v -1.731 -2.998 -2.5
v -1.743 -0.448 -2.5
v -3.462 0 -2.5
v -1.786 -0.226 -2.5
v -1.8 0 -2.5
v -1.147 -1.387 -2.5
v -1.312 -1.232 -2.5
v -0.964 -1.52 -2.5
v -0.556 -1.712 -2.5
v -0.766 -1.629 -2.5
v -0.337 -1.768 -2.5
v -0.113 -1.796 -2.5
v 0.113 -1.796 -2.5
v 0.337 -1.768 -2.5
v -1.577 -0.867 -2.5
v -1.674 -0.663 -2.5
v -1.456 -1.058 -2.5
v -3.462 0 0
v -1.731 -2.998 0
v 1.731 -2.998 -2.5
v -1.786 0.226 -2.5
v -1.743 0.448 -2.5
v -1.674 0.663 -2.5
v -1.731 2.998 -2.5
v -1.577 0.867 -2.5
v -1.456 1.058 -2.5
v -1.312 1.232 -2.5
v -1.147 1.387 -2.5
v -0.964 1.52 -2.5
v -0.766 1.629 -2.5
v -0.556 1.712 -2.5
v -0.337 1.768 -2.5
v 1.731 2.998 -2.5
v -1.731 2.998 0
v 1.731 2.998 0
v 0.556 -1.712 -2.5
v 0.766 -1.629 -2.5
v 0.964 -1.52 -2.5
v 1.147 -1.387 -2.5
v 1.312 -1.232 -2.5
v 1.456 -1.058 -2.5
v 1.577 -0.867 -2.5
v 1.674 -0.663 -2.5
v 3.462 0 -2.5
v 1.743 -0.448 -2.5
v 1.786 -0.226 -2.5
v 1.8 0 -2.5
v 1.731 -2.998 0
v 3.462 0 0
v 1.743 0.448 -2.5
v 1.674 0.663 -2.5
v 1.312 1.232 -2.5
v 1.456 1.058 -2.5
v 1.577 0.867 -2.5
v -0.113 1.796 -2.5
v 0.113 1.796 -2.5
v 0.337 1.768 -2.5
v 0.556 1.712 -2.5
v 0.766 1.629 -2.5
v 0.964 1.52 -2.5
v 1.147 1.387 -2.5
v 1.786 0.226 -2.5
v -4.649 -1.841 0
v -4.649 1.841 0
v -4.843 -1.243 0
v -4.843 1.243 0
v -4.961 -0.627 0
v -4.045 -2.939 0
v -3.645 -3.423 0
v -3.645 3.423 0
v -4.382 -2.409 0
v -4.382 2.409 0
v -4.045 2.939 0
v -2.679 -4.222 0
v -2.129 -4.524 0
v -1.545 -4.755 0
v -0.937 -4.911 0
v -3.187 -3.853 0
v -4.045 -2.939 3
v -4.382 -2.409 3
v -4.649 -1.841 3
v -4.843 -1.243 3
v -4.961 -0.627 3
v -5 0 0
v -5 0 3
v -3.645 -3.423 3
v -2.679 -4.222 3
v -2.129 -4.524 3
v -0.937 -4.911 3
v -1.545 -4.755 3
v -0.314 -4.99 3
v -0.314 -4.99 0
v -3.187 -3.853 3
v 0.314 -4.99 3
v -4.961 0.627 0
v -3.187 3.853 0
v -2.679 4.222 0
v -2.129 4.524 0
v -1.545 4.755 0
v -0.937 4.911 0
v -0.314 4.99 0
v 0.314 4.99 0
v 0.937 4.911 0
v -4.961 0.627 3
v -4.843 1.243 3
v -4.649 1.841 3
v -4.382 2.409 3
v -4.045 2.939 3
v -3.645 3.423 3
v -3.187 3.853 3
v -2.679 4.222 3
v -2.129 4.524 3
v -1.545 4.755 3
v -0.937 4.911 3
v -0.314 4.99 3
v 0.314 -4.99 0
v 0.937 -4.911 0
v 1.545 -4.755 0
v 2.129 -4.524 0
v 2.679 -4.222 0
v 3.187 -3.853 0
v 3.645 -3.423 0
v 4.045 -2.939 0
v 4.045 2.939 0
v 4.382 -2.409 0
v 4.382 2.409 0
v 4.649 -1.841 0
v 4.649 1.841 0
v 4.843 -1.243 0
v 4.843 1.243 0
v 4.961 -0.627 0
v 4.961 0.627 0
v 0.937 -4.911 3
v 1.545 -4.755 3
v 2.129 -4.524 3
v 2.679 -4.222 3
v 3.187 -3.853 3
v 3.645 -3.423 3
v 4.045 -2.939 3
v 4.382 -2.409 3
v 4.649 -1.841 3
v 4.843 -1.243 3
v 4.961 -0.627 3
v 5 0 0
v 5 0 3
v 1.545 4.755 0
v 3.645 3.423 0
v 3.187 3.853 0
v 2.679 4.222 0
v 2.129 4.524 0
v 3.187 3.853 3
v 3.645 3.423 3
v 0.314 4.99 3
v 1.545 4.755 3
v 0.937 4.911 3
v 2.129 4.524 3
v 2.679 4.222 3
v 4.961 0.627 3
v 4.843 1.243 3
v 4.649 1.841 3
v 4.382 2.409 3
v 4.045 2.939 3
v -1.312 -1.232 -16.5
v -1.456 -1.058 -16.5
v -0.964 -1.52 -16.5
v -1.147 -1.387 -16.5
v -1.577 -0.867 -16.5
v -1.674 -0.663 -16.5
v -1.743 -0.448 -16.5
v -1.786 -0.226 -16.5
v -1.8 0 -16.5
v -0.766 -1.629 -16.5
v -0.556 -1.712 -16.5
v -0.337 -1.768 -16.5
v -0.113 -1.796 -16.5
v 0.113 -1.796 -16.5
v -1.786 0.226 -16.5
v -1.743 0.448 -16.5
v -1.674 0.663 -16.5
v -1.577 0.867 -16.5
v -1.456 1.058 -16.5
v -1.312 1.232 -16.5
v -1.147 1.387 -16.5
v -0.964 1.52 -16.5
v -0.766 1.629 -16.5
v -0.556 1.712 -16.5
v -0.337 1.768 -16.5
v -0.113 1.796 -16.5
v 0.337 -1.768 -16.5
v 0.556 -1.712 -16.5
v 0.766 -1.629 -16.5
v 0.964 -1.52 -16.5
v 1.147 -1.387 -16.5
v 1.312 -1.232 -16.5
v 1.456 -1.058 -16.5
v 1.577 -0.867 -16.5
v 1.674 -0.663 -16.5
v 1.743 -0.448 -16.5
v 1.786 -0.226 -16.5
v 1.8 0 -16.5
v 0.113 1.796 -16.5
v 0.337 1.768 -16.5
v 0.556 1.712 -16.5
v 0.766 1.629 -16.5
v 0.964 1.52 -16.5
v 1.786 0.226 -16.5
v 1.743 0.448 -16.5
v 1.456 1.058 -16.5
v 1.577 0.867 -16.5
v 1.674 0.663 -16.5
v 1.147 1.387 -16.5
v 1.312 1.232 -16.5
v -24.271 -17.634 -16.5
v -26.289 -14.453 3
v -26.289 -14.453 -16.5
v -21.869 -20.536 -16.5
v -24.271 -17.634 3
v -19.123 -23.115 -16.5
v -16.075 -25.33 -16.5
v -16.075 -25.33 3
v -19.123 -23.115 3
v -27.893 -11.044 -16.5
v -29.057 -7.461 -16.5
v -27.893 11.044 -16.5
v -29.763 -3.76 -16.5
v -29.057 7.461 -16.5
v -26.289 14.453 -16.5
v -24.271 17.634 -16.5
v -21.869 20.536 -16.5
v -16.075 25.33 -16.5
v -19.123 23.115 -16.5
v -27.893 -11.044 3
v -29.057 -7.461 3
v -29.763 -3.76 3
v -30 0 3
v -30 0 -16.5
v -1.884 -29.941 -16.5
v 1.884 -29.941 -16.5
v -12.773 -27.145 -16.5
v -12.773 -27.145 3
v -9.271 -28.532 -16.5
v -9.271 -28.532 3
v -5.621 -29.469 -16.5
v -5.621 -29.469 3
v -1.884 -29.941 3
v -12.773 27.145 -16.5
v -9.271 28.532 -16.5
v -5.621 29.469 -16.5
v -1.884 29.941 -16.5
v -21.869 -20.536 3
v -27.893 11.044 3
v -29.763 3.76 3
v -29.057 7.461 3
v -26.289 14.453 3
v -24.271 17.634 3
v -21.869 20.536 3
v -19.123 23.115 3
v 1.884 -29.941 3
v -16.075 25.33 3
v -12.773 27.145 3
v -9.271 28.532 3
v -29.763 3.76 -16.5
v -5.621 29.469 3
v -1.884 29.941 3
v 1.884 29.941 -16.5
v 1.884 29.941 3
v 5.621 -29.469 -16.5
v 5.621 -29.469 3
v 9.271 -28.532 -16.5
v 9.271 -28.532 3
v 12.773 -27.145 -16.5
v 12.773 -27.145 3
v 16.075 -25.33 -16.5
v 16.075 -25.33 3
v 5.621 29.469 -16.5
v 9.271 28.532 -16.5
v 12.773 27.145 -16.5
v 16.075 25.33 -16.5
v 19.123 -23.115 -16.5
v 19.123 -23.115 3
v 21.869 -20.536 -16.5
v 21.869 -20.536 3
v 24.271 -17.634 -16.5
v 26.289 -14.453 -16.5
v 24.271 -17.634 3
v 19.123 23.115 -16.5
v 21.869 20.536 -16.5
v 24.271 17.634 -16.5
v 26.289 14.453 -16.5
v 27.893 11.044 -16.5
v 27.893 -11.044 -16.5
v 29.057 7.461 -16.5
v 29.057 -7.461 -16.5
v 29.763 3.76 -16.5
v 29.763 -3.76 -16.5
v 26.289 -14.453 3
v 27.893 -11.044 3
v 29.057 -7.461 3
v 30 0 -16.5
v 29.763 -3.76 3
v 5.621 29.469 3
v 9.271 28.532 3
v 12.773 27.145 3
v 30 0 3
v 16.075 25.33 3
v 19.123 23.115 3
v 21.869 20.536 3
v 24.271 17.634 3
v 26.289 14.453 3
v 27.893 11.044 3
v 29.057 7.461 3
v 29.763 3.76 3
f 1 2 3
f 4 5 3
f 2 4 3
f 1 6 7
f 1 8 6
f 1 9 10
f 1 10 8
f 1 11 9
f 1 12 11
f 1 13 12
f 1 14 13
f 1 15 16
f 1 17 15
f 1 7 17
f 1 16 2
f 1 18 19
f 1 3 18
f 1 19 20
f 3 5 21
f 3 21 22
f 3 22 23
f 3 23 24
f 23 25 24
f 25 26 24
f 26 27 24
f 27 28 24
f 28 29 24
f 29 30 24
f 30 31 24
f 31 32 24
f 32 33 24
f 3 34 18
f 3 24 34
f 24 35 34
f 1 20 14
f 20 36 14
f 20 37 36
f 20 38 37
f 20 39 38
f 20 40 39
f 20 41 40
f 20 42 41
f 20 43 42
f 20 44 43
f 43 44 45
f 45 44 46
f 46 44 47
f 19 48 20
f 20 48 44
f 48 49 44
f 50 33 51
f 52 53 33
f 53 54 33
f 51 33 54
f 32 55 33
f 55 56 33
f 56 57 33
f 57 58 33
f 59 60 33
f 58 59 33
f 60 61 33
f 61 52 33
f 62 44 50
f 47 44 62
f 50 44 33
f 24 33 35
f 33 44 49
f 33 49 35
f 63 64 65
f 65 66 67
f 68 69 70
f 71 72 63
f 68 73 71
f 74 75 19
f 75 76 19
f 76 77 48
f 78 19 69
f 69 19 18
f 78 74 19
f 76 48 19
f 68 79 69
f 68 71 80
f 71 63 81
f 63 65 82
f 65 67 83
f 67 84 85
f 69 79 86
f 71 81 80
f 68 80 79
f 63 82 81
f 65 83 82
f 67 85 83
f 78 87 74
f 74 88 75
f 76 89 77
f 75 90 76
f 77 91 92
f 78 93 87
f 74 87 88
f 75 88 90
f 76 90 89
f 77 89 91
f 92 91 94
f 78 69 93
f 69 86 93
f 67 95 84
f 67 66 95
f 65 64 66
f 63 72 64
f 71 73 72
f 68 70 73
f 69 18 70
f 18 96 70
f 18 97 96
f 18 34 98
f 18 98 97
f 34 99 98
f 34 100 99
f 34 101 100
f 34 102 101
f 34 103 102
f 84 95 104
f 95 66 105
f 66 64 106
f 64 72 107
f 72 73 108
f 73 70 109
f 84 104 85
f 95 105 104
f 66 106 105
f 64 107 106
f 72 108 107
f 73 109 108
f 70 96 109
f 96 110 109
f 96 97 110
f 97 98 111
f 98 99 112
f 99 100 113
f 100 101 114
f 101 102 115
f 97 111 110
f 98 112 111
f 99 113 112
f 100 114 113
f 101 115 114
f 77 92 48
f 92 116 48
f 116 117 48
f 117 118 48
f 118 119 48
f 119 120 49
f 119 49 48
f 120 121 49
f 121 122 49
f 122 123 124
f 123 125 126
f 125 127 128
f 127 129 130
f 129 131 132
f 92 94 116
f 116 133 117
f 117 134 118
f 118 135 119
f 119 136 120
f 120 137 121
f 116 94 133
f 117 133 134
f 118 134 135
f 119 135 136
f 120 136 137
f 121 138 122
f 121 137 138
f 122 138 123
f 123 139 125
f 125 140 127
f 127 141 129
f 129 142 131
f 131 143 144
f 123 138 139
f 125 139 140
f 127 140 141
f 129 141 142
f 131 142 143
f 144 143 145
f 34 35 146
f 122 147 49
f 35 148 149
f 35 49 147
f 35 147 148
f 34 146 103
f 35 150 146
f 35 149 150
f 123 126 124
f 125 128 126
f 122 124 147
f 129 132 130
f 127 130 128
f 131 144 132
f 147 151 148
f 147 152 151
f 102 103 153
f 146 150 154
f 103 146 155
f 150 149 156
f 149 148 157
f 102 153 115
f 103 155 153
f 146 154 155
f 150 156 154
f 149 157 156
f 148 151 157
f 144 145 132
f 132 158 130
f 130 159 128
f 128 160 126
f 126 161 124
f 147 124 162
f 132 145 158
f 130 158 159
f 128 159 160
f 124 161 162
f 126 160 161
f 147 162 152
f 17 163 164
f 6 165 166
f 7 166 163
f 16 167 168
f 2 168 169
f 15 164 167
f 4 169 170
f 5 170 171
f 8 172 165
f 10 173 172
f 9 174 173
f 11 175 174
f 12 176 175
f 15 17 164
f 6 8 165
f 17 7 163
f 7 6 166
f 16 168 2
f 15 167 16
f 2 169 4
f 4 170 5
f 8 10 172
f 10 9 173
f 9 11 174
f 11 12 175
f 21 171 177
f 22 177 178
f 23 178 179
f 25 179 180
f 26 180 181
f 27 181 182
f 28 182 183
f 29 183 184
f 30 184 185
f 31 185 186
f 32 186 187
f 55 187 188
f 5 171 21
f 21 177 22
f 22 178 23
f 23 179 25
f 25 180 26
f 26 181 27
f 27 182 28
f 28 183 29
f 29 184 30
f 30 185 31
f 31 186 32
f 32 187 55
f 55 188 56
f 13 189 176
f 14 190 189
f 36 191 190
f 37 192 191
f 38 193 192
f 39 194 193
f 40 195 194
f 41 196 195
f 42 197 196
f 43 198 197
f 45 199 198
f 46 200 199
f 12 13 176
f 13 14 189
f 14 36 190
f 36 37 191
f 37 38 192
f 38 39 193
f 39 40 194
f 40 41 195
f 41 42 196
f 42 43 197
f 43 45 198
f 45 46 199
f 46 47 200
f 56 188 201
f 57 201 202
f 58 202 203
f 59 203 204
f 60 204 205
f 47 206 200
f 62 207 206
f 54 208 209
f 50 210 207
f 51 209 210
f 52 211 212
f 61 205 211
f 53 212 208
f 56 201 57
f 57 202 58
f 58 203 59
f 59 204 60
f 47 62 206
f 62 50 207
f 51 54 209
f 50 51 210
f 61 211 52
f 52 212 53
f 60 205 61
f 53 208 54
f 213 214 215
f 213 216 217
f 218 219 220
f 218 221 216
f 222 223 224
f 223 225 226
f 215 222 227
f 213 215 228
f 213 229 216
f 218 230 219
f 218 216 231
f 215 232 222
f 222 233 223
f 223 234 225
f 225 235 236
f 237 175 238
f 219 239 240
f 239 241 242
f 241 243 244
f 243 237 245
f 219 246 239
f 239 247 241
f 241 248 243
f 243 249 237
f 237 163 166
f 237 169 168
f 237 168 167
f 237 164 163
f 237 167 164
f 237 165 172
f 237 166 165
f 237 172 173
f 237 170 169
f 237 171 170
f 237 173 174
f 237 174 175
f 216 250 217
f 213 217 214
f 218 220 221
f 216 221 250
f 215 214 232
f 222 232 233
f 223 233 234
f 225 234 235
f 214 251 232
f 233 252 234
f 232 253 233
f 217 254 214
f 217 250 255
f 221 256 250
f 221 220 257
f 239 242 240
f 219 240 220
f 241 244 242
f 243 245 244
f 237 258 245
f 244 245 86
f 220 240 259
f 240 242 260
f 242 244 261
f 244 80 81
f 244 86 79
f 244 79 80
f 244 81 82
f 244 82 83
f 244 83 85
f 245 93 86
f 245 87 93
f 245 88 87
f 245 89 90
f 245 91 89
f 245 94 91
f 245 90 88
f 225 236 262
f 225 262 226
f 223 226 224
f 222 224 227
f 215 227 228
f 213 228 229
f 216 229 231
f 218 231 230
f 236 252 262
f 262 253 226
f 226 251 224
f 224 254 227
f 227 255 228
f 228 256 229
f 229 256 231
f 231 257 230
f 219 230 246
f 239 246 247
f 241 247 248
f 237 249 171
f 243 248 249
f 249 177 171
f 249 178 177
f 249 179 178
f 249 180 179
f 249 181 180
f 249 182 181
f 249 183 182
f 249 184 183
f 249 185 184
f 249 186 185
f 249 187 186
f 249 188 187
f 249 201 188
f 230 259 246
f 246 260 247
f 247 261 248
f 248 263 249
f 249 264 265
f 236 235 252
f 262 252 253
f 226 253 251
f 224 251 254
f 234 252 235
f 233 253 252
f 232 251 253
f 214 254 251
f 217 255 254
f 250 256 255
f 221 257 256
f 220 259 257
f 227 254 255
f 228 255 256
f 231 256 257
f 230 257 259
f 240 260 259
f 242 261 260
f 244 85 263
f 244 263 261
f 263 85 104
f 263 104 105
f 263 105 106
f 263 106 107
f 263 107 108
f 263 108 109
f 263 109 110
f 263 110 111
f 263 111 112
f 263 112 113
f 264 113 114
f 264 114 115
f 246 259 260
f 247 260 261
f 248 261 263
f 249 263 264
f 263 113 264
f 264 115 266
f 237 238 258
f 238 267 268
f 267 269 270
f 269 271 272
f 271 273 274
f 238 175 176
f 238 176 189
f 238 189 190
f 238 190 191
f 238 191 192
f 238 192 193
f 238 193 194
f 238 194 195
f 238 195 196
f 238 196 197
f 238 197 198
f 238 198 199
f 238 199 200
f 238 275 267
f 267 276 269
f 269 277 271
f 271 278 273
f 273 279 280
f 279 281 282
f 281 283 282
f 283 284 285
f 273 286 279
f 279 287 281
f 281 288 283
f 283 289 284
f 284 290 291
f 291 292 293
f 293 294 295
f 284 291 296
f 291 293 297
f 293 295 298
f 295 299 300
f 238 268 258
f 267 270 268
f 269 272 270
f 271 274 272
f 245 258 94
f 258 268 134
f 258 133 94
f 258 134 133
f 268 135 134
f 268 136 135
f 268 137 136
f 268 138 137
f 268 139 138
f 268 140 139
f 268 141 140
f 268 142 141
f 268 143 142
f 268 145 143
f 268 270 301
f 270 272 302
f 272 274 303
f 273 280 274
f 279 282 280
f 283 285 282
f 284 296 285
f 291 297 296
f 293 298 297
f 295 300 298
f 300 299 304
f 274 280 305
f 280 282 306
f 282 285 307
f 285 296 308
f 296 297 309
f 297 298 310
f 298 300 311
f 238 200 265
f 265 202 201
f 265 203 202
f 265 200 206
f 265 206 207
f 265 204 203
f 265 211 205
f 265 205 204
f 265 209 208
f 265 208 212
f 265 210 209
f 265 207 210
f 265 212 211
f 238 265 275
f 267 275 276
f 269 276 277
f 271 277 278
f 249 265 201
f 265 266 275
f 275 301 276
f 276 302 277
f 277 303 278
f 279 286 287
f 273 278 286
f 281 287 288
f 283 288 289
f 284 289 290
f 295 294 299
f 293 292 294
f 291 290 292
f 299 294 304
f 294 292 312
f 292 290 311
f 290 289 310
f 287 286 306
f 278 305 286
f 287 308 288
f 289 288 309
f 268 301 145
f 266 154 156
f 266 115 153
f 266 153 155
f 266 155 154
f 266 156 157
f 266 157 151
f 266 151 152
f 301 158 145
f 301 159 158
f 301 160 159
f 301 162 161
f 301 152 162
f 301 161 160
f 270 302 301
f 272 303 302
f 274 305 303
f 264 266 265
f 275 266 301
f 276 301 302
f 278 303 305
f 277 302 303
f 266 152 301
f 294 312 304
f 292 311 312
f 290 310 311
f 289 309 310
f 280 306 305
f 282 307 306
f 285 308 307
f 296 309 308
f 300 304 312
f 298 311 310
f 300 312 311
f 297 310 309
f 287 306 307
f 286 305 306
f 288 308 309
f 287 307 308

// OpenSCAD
$fn = 50;

difference() {
	union() {
		translate(v = [0, 0, -16.5]) {
			cylinder(h = 19.5, r = 30.0);
		}
	}
	union() {
		translate(v = [0, 0, 0]) {
			rotate(a = [0, 0, 0]) {
				difference() {
					union() {
						translate(v = [0, 0, -2.5]) {
							linear_extrude(height = 2.5) {
								polygon(points = [[3.4619999999999997, 0.0], [1.7310000000000003, 2.9981799479017264], [-1.7309999999999992, 2.9981799479017264], [-3.4619999999999997, 4.2397272186481365e-16], [-1.7310000000000014, -2.998179947901726], [1.7309999999999977, -2.9981799479017277]]);
							}
						}
					}
					union();
				}
			}
		}
		#cylinder(h = 3, r = 5.0);
		#translate(v = [0, 0, -100.0]) {
			cylinder(h = 200, r = 1.8);
		}
	}
}
